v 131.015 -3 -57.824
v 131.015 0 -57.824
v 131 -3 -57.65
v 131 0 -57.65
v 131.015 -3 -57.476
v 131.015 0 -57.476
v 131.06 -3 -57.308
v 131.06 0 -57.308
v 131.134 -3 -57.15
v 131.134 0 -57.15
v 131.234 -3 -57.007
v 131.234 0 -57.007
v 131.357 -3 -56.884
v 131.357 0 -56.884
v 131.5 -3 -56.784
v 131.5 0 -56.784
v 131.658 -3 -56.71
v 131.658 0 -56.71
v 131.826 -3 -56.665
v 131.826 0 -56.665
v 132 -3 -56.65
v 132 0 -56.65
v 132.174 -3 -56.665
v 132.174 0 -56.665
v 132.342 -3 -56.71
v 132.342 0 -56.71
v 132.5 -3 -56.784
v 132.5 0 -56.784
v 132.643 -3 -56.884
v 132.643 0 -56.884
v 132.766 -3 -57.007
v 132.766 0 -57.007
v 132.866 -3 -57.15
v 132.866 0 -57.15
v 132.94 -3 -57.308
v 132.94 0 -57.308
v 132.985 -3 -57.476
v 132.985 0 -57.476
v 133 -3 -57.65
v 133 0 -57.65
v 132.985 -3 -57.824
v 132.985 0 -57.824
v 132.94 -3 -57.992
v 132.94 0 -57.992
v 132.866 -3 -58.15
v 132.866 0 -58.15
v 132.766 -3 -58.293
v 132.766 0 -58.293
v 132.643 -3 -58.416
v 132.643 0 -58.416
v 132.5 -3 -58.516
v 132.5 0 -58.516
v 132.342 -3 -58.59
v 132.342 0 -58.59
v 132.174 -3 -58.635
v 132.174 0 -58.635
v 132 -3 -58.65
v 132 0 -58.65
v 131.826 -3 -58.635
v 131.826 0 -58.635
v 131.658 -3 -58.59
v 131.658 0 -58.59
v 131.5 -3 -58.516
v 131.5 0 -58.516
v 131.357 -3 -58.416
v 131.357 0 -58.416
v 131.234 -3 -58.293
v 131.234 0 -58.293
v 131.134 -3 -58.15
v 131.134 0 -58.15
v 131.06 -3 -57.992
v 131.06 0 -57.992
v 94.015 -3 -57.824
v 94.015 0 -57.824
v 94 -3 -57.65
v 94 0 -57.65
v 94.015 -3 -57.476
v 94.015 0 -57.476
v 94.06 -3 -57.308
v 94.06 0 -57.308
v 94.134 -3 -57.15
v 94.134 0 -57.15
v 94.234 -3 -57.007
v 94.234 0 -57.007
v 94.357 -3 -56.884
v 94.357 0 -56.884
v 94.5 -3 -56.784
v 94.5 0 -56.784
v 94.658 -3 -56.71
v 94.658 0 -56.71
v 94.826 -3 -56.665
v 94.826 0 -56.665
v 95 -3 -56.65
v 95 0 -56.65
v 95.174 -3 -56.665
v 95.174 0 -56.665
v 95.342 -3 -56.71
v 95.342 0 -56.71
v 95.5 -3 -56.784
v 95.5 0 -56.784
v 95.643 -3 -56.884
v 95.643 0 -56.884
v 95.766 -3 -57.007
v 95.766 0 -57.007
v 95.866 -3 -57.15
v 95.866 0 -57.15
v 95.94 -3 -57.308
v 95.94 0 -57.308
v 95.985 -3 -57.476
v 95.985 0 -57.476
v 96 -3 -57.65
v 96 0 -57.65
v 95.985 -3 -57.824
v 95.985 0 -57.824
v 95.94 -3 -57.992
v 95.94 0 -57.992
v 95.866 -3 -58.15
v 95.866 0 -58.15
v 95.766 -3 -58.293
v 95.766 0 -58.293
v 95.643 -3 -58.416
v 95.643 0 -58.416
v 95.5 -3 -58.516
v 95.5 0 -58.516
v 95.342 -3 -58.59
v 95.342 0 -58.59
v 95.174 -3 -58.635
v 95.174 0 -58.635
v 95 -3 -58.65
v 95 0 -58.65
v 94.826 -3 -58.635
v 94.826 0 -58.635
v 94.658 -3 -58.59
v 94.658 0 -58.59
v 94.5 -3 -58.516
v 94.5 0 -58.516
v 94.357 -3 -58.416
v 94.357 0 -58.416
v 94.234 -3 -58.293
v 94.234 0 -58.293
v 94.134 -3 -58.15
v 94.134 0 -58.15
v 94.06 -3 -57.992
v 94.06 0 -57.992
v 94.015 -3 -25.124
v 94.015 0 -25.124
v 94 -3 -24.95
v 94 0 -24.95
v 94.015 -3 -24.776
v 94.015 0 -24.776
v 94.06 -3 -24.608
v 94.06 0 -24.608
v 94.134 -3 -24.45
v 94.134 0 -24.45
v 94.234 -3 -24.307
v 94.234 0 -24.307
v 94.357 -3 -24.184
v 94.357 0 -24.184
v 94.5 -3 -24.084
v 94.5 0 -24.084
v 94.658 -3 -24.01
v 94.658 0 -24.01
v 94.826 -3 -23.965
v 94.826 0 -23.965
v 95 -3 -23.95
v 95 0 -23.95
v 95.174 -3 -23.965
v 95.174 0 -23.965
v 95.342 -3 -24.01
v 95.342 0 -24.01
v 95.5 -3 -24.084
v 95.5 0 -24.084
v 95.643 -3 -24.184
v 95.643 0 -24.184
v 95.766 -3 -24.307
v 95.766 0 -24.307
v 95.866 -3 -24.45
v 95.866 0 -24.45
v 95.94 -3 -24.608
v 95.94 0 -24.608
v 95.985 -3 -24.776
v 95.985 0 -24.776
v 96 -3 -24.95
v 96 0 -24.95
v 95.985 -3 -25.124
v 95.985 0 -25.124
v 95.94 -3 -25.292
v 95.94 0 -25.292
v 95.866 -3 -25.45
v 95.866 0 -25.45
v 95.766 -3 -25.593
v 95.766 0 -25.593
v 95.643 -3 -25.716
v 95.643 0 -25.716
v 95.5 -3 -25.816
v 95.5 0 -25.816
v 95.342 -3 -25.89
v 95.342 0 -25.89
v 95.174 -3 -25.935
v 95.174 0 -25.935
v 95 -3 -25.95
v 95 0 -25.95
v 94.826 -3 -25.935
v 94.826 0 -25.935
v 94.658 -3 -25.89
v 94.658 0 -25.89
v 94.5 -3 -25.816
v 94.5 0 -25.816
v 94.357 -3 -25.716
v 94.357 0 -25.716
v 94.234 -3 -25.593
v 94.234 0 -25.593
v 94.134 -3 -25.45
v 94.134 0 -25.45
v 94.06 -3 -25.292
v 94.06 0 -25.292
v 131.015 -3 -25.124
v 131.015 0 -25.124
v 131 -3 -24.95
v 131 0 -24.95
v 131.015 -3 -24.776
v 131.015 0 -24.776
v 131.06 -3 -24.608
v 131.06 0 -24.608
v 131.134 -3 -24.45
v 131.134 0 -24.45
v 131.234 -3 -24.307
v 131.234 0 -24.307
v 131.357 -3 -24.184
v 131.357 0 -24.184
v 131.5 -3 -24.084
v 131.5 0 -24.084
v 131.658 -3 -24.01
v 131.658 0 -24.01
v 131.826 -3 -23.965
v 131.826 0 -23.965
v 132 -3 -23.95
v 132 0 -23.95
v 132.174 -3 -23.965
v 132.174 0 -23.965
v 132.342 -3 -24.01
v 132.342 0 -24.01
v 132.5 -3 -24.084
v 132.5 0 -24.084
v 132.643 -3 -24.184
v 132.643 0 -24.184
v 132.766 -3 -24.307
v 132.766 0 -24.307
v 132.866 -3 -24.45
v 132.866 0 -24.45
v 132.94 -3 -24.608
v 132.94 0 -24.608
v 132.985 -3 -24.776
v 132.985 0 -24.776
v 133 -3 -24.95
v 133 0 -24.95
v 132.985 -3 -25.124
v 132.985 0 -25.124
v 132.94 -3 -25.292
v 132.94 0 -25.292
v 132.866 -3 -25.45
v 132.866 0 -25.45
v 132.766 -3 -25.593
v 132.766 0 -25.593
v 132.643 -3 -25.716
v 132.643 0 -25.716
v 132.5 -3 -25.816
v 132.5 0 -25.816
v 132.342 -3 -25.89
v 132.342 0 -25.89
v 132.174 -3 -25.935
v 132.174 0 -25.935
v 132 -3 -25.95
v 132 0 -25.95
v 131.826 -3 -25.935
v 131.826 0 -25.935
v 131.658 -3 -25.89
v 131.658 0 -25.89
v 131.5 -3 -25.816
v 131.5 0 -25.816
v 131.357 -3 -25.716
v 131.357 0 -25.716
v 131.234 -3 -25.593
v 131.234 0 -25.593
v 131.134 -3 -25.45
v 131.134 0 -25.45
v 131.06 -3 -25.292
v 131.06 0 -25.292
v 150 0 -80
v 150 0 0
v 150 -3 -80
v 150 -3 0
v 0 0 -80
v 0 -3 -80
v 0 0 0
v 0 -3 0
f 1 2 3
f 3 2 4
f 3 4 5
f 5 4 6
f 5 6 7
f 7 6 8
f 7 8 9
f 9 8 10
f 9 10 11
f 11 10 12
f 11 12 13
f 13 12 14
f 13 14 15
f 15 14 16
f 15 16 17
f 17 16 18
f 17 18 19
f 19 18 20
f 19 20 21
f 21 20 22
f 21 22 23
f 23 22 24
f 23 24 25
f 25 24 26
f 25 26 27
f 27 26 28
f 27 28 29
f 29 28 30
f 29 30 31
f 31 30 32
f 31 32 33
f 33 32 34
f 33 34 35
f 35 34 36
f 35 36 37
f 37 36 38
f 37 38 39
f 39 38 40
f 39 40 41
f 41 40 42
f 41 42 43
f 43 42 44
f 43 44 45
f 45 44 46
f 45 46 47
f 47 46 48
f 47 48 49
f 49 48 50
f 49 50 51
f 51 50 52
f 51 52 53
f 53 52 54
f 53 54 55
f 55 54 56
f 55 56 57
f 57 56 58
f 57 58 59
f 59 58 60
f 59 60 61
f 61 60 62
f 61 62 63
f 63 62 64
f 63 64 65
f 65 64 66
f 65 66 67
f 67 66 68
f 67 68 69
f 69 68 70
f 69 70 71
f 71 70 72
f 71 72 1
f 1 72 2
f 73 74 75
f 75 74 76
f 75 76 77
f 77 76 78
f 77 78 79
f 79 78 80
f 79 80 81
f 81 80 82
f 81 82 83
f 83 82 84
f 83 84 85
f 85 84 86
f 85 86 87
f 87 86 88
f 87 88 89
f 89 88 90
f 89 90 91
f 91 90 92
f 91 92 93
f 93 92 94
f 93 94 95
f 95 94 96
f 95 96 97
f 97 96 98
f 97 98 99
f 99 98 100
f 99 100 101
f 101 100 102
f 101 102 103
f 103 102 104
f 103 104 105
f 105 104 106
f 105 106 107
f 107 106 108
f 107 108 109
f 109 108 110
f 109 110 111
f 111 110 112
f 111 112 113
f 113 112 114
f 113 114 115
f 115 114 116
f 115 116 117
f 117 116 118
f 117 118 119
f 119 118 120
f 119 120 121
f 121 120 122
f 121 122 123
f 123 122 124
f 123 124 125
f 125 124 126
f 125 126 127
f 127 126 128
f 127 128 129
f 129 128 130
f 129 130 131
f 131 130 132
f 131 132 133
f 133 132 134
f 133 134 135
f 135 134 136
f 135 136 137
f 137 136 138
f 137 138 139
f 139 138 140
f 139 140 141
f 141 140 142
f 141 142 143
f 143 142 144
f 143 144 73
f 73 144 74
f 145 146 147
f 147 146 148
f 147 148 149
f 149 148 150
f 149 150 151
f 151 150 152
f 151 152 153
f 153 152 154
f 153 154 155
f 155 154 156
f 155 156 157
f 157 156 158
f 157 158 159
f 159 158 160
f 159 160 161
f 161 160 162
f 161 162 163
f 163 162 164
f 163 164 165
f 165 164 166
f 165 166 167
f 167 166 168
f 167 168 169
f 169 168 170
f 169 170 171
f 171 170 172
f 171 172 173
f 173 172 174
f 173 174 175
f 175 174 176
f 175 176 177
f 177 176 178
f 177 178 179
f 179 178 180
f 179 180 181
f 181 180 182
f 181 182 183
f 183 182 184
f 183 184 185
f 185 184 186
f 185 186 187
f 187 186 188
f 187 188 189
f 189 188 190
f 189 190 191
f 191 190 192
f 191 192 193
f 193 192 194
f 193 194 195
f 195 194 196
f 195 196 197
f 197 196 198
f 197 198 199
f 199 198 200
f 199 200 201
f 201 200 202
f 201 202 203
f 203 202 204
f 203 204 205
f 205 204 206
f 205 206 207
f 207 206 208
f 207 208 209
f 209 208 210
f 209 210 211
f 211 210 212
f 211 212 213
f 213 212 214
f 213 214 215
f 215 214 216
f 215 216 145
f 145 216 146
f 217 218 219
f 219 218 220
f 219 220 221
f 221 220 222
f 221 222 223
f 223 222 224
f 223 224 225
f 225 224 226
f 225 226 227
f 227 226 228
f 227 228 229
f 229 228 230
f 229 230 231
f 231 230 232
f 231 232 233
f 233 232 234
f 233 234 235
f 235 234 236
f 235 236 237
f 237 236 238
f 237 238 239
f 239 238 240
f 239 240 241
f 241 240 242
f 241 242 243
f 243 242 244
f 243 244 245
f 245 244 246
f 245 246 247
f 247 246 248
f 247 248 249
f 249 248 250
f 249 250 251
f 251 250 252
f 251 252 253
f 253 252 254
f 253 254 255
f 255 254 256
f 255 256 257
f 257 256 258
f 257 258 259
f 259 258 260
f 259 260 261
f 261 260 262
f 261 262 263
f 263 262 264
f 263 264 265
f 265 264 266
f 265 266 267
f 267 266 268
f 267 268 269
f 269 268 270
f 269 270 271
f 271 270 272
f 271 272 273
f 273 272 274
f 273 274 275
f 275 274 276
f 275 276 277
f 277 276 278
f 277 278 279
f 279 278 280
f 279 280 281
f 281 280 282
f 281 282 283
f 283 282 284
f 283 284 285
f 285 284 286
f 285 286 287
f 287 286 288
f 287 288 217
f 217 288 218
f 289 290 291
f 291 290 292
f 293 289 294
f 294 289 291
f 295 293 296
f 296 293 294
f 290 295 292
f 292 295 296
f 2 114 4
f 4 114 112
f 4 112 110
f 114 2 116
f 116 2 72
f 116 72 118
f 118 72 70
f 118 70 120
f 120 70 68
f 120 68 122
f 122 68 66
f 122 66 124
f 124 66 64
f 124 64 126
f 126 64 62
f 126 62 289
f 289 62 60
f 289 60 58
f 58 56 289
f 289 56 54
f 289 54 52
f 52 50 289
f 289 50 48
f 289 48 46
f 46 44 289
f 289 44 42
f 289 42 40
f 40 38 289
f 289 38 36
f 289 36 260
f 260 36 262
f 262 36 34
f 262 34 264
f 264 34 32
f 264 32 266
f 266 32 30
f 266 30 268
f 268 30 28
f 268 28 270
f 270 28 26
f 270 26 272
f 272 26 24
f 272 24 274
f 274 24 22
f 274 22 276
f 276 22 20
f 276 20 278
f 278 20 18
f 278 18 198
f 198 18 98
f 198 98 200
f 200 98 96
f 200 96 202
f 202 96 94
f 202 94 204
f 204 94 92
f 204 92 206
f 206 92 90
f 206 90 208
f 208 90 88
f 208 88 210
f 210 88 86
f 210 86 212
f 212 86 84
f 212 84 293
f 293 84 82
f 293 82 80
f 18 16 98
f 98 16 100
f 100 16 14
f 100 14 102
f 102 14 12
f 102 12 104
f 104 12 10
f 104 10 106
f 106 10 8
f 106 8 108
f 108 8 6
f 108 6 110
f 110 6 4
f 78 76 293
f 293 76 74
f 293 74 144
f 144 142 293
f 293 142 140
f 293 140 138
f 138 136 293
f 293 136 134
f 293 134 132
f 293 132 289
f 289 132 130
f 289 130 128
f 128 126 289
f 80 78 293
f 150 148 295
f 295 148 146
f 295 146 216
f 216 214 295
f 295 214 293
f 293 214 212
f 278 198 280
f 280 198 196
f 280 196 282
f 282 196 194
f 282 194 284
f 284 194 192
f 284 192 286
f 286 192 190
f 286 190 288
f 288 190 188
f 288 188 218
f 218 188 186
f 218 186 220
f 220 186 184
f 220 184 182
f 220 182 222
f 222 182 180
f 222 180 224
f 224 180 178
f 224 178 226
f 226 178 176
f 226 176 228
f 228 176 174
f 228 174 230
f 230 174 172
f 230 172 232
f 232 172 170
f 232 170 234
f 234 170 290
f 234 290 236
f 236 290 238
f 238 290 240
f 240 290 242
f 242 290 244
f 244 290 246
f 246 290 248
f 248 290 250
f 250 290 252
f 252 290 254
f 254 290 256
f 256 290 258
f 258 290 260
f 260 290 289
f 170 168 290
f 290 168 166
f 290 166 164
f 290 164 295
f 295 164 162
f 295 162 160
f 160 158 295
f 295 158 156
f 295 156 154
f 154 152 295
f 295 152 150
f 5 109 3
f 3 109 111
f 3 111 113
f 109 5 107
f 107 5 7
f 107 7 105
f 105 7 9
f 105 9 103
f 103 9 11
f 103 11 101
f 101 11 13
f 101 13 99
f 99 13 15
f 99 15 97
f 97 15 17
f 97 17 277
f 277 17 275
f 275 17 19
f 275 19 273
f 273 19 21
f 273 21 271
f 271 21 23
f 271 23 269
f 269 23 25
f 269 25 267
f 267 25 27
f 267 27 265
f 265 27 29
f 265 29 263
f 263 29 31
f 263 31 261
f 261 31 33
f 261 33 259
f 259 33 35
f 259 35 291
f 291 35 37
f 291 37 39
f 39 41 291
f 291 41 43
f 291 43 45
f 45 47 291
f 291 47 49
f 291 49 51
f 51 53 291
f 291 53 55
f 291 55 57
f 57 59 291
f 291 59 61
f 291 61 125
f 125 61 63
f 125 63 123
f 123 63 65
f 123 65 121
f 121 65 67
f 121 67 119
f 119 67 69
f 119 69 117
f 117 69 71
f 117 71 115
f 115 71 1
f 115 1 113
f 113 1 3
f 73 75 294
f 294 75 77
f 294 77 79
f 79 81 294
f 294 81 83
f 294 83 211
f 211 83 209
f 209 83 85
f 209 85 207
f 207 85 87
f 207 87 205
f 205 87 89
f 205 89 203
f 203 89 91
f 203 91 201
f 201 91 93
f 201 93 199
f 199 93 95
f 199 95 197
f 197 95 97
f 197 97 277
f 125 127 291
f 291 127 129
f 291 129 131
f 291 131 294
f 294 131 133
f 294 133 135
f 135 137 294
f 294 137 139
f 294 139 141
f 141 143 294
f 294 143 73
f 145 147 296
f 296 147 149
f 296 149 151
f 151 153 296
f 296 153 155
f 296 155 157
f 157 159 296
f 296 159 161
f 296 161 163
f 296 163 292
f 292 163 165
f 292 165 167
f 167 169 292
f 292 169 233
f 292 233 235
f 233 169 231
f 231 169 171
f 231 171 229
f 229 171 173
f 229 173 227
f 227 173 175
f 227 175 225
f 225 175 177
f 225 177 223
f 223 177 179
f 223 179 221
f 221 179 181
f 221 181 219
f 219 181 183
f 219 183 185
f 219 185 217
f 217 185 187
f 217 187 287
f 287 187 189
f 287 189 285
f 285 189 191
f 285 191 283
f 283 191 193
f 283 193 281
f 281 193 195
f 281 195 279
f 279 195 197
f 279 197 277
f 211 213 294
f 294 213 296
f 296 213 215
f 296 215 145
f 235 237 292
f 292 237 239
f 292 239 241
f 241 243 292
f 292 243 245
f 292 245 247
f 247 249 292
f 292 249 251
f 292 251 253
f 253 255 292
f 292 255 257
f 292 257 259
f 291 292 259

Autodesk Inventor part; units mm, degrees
ref_plane "YZ Plane" through (0, 0, 0) normal (1, 0, 0) x (0, 1, 0)
ref_plane "XZ Plane" through (0, 0, 0) normal (0, 1, 0) x (-1, 0, 0)
ref_plane "XY Plane" through (0, 0, 0) normal (0, 0, 1) x (1, 0, 0)
sketch "草图1" plane through (0, 0, 0) normal (0, 1, 0) x (-1, 0, 0)
  line L0 (0, 0) -> (-150, 0)
  line L1 (-150, 0) -> (-150, -80)
  line L2 (-150, -80) -> (0, -80)
  line L3 (0, -80) -> (0, 0)
  line L4 (-150, 0) -> (-132, 0)
  line L5 (-132, 0) -> (-132, -24.95)
  circle A0 centre (-132, -24.95) radius 1
  line L6 (-132, -24.95) -> (-132, -57.65)
  line L7 (-132, -57.65) -> (-95, -57.65)
  line L8 (-95, -57.65) -> (-95, -24.95)
  circle A1 centre (-95, -24.95) radius 1
  circle A2 centre (-95, -57.65) radius 1
  circle A3 centre (-132, -57.65) radius 1
  dimension "d0" = 150
  dimension "d1" = 80
  dimension "d2" = 18
  dimension "d3" = 24.95
  dimension "d4" = 2
  dimension "d5" = 32.7
  dimension "d6" = 37
  dimension "d7" = 32.7
  dimension "d8" = 2
  dimension "d9" = 2
  dimension "d10" = 2
extrude "拉伸1" add sketch "草图1" against normal blind 3
properties part number "base"
